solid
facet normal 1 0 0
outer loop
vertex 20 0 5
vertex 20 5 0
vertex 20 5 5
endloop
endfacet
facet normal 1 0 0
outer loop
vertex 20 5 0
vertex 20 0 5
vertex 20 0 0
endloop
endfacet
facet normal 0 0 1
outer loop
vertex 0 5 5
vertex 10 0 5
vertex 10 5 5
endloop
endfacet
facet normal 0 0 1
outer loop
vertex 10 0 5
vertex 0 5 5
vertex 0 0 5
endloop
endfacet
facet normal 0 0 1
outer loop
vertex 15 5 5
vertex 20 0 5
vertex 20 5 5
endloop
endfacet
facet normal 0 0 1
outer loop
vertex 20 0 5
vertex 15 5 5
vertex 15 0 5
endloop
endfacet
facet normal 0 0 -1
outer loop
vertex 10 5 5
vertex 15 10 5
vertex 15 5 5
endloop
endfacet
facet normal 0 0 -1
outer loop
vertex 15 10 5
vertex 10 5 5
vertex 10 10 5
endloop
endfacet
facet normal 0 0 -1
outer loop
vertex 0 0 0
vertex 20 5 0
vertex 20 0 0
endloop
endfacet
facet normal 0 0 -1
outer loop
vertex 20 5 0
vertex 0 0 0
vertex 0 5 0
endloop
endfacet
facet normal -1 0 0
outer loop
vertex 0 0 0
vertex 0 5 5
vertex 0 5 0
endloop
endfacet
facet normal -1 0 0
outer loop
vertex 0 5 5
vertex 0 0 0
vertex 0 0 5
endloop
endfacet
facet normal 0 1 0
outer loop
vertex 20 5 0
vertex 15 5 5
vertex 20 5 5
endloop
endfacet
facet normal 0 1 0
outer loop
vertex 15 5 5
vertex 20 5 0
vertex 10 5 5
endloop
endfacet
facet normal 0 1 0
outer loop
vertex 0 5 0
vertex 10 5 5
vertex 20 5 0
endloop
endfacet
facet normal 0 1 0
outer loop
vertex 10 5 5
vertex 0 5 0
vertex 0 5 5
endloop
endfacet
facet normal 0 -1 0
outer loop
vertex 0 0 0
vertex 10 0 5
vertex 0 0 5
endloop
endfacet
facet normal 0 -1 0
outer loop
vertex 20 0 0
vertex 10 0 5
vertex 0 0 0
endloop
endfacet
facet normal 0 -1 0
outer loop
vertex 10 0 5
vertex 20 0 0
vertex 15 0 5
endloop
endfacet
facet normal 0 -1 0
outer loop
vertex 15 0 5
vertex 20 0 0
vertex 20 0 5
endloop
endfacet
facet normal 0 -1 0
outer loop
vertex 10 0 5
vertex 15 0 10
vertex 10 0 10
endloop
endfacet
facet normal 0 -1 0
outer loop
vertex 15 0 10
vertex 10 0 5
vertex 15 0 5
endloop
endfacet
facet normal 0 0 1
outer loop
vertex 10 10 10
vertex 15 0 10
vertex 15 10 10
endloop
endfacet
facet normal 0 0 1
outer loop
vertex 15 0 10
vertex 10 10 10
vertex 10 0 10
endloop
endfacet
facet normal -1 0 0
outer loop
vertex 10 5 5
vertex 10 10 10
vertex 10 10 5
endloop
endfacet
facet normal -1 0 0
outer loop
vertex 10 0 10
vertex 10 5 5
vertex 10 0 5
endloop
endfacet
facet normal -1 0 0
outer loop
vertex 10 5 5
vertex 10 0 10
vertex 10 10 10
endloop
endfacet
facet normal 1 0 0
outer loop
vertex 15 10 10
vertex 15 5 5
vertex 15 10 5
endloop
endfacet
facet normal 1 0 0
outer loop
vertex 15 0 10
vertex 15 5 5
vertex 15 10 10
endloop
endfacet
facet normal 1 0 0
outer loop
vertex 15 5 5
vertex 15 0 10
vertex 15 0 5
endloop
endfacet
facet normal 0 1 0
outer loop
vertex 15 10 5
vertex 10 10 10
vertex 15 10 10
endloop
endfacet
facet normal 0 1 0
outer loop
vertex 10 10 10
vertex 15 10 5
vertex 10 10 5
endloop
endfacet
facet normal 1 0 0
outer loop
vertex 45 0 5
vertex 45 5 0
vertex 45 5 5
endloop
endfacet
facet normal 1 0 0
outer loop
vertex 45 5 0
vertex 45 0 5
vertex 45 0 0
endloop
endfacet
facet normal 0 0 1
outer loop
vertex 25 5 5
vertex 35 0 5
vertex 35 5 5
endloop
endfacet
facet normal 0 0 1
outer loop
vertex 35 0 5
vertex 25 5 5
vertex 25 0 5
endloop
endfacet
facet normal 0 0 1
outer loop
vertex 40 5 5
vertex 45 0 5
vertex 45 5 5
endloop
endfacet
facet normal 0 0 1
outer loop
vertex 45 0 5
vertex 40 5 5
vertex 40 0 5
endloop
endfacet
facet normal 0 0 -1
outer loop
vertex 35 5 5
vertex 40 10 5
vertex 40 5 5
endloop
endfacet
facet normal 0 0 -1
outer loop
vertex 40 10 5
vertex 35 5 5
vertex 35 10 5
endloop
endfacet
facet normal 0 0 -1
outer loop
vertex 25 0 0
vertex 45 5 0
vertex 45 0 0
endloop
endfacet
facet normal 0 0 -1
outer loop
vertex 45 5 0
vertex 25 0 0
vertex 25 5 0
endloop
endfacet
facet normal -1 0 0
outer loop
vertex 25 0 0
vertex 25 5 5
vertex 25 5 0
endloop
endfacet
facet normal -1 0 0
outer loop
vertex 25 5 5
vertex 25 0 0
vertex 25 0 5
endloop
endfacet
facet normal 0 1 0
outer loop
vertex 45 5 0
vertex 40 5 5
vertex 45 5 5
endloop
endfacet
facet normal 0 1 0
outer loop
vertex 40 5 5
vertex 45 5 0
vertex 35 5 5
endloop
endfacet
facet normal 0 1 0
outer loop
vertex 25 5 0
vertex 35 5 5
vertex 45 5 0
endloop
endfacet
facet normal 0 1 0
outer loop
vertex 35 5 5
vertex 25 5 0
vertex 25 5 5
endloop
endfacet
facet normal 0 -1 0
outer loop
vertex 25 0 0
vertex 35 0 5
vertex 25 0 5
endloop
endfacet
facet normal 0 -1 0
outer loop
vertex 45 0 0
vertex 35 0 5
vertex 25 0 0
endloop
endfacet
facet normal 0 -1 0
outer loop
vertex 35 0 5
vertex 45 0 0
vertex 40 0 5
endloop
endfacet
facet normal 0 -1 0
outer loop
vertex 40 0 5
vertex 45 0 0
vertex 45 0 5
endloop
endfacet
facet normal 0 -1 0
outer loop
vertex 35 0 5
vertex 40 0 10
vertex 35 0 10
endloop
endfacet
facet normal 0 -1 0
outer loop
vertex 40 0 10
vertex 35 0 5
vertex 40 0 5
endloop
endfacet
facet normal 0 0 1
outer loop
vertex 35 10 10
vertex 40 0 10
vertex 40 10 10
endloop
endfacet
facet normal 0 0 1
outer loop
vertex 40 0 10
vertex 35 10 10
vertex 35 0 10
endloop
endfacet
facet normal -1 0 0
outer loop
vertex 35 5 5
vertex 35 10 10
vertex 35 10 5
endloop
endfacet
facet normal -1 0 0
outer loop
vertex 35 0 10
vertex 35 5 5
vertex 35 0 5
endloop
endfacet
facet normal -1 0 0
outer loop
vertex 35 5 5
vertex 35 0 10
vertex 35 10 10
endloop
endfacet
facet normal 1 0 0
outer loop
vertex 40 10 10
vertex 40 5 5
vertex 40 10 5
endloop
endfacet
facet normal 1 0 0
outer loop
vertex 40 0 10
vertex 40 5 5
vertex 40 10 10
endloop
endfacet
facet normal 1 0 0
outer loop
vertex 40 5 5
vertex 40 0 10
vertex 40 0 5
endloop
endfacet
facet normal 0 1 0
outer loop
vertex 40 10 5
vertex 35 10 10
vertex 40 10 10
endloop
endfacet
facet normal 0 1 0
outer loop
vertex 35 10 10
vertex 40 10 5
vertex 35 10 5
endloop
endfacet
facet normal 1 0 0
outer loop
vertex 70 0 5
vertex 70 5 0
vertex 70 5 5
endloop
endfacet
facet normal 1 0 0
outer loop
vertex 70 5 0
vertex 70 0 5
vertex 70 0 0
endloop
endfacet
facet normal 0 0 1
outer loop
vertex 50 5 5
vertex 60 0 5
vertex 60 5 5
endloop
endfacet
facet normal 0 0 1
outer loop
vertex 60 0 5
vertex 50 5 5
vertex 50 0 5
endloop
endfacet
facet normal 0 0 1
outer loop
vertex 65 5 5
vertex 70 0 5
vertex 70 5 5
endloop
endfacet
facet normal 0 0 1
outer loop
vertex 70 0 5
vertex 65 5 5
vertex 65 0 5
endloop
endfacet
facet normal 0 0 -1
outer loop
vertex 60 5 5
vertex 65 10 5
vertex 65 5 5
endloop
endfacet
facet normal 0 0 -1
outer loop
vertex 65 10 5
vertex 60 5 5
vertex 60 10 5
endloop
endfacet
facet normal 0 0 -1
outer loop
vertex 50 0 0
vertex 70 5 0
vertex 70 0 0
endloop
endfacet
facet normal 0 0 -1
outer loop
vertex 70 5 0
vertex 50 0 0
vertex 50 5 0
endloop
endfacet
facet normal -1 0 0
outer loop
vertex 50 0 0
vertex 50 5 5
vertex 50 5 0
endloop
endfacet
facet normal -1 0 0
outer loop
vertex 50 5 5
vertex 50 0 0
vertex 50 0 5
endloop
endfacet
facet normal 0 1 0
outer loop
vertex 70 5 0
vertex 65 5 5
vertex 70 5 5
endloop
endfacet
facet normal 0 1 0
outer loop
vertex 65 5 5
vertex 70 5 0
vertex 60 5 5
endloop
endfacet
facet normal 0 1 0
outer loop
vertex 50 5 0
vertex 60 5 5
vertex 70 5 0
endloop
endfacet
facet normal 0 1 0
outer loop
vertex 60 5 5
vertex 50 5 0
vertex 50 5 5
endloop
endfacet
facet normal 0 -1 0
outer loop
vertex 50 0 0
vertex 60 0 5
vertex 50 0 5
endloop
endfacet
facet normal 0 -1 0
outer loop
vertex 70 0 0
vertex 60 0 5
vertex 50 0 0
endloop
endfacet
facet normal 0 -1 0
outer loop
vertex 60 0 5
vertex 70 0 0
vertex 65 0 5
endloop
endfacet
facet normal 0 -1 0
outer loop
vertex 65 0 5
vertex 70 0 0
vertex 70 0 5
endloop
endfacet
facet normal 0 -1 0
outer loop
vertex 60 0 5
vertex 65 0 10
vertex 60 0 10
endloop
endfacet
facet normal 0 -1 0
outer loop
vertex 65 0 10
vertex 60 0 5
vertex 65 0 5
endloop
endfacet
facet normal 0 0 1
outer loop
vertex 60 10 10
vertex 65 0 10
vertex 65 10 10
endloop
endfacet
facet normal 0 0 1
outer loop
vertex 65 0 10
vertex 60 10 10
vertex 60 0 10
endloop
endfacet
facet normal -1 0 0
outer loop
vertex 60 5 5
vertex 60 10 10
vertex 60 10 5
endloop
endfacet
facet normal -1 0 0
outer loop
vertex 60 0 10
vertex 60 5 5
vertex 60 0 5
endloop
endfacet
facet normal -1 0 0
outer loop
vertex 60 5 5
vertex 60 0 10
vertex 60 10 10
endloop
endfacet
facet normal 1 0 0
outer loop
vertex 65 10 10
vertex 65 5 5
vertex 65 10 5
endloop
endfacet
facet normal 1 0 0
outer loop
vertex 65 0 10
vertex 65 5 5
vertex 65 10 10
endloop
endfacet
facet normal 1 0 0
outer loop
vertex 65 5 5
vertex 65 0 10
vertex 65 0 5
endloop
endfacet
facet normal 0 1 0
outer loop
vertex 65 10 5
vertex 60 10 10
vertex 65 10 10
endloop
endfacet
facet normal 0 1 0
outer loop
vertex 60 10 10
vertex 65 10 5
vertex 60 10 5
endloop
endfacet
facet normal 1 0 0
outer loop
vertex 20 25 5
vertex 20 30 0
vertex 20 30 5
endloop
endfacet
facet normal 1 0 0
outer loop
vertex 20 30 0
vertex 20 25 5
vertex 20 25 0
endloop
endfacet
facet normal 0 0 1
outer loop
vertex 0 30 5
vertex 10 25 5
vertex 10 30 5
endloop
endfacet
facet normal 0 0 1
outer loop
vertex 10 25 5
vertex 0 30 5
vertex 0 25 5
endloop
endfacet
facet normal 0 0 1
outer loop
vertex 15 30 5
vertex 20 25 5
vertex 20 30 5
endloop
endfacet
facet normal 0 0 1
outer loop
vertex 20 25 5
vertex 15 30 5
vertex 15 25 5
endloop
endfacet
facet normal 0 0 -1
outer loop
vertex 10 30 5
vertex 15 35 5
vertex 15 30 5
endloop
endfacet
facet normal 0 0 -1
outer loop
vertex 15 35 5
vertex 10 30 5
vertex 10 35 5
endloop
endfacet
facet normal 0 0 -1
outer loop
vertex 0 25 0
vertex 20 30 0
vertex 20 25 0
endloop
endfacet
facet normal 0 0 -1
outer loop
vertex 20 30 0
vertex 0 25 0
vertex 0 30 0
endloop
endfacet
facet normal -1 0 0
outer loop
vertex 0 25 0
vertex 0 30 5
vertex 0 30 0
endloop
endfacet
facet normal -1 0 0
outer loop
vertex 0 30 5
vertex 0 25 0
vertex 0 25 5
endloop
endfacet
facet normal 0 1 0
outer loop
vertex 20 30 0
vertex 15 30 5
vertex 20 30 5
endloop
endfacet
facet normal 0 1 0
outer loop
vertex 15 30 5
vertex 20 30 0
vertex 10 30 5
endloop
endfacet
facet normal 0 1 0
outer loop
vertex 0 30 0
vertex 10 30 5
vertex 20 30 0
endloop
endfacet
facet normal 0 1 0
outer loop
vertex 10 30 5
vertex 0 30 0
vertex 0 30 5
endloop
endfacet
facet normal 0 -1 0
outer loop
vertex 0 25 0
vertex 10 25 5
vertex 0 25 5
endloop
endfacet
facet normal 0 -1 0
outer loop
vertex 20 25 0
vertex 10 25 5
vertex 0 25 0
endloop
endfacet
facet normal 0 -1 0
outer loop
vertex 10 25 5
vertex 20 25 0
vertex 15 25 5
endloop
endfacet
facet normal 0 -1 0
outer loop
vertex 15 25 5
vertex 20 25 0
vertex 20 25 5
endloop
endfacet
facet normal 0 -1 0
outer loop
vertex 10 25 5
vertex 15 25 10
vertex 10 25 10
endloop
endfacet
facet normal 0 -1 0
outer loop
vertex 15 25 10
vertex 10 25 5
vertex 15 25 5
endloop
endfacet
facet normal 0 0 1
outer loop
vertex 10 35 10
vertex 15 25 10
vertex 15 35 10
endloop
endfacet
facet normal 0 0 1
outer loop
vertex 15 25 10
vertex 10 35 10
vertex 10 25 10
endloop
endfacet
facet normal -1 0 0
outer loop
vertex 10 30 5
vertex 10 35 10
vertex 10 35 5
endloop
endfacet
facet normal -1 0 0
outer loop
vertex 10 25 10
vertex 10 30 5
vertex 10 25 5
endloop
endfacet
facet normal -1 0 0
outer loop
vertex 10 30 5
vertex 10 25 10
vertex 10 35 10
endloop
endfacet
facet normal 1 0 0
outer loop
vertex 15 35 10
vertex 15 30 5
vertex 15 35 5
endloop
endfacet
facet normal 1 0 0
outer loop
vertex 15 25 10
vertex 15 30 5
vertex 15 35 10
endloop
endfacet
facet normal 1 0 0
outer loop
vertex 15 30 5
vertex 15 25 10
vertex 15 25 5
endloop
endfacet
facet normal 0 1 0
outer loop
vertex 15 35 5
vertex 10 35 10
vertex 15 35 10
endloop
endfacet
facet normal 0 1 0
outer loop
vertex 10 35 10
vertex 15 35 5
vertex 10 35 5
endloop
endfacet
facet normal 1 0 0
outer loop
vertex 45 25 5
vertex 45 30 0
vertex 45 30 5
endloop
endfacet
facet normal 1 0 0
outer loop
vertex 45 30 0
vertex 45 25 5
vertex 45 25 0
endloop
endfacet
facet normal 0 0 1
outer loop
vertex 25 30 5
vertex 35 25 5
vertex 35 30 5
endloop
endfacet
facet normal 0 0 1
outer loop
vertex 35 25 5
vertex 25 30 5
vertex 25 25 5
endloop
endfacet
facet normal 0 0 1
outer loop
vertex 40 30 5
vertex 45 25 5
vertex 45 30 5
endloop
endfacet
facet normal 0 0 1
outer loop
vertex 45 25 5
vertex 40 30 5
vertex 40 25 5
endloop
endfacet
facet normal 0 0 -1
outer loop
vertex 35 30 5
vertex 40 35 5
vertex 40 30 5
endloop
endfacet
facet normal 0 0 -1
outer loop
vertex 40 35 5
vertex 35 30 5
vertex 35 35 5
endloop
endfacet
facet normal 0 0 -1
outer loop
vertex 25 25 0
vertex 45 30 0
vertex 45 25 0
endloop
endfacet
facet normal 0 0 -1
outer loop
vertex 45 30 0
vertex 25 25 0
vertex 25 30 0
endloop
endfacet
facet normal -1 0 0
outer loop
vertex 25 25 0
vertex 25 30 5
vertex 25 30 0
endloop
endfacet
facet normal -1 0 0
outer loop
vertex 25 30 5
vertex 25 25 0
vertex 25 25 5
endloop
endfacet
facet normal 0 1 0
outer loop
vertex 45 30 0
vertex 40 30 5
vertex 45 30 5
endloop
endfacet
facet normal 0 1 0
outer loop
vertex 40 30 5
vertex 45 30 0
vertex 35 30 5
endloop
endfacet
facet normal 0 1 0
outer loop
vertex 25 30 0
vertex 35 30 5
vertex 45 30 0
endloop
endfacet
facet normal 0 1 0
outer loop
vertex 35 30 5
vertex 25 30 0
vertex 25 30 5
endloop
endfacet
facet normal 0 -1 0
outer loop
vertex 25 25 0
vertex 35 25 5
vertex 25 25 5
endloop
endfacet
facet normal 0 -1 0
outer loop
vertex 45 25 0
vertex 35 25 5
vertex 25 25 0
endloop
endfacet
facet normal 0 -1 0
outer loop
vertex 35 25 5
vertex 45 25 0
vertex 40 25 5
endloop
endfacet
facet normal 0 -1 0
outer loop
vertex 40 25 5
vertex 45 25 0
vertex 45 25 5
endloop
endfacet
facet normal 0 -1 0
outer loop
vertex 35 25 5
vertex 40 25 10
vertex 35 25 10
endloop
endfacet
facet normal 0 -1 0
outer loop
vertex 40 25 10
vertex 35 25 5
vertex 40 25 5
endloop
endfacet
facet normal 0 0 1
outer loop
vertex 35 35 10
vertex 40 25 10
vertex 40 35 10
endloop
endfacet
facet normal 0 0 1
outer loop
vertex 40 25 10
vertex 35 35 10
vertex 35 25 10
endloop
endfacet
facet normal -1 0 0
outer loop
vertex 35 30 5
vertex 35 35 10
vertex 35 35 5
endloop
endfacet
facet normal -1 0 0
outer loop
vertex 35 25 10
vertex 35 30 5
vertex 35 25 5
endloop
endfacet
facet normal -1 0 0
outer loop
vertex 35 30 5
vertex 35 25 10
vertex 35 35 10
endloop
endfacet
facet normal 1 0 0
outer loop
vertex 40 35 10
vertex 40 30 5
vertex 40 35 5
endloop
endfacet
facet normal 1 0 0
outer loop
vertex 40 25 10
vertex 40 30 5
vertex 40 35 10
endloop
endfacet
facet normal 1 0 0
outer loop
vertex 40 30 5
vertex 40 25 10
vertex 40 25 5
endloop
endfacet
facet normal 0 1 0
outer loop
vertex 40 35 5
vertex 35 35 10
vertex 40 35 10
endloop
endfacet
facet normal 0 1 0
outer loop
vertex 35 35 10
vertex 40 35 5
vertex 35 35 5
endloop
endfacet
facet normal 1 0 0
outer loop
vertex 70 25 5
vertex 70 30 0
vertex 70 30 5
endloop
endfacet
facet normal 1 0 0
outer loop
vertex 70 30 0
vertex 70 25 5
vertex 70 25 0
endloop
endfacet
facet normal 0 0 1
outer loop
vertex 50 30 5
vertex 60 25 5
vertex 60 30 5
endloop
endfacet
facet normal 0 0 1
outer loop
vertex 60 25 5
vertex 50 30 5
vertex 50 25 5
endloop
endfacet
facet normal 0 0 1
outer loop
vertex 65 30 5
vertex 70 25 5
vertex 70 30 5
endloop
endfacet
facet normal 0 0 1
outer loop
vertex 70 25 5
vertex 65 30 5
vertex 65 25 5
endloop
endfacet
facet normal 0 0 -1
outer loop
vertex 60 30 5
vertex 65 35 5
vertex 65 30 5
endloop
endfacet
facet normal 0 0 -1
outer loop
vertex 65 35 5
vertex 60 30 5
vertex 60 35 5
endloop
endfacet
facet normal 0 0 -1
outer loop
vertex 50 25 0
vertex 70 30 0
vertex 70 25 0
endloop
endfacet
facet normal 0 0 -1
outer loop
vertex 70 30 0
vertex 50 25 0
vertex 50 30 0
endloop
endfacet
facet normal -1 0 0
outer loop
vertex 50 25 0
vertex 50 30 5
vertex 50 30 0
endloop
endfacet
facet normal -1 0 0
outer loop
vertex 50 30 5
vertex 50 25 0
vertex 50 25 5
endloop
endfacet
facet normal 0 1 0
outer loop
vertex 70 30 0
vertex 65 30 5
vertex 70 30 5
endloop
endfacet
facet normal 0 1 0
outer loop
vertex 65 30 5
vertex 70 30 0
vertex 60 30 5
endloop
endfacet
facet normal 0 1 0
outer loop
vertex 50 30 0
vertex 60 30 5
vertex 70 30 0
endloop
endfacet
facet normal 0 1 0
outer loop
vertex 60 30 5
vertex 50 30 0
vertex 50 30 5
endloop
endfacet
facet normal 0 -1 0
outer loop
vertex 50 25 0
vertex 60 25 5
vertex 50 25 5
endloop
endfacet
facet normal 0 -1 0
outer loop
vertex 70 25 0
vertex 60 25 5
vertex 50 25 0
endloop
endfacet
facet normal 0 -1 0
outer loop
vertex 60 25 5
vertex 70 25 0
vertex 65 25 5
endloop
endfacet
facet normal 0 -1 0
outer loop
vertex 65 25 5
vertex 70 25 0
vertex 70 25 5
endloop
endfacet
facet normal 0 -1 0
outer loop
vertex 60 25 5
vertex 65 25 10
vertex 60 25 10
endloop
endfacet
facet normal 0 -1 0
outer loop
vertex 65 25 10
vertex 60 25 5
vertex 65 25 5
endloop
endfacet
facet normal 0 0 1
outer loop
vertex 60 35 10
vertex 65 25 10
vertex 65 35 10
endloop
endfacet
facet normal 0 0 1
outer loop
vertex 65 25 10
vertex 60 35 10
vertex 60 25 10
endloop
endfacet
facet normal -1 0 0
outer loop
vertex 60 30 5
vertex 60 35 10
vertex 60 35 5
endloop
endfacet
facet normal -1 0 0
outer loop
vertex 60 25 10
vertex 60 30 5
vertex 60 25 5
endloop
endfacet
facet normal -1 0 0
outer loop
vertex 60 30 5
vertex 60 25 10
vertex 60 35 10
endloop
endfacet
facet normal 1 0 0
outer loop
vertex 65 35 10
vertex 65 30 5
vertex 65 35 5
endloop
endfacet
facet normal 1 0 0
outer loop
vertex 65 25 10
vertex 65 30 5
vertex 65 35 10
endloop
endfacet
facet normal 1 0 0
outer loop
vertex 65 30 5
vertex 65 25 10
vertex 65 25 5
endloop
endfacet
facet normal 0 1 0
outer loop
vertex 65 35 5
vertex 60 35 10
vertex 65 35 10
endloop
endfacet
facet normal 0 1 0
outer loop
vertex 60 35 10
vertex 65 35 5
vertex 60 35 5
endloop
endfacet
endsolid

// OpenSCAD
// Function to create a single angled connector
module angled_connector() {
    // Base dimensions for the connector
    connector_length = 20;
    connector_width = 5;
    connector_height = 5;
    angle_offset = 10;

    // Create the "L" shape with corrected alignment and orientation
    union() {
        // Horizontal part
        cube([connector_length, connector_width, connector_height]);

        // Vertical part
        translate([connector_length - connector_width, 0, connector_height])
        rotate([0, 0, 90]) // Corrected rotation for uniform alignment
        cube([connector_length - angle_offset, connector_width, connector_height]);
    }
}

// Position and render all six angled connectors
module model() {
    // Define corrected positions for the six connectors
    positions = [
        [0, 0, 0],
        [25, 0, 0], // Adjusted spacing for uniformity
        [50, 0, 0], // Adjusted spacing for uniformity
        [0, 25, 0], // Adjusted spacing for uniformity
        [25, 25, 0], // Adjusted spacing for uniformity
        [50, 25, 0]  // Adjusted spacing for uniformity
    ];

    // Render each connector at its respective position
    for (pos = positions) {
        translate(pos)
        angled_connector();
    }
}

// Render the model
model();
